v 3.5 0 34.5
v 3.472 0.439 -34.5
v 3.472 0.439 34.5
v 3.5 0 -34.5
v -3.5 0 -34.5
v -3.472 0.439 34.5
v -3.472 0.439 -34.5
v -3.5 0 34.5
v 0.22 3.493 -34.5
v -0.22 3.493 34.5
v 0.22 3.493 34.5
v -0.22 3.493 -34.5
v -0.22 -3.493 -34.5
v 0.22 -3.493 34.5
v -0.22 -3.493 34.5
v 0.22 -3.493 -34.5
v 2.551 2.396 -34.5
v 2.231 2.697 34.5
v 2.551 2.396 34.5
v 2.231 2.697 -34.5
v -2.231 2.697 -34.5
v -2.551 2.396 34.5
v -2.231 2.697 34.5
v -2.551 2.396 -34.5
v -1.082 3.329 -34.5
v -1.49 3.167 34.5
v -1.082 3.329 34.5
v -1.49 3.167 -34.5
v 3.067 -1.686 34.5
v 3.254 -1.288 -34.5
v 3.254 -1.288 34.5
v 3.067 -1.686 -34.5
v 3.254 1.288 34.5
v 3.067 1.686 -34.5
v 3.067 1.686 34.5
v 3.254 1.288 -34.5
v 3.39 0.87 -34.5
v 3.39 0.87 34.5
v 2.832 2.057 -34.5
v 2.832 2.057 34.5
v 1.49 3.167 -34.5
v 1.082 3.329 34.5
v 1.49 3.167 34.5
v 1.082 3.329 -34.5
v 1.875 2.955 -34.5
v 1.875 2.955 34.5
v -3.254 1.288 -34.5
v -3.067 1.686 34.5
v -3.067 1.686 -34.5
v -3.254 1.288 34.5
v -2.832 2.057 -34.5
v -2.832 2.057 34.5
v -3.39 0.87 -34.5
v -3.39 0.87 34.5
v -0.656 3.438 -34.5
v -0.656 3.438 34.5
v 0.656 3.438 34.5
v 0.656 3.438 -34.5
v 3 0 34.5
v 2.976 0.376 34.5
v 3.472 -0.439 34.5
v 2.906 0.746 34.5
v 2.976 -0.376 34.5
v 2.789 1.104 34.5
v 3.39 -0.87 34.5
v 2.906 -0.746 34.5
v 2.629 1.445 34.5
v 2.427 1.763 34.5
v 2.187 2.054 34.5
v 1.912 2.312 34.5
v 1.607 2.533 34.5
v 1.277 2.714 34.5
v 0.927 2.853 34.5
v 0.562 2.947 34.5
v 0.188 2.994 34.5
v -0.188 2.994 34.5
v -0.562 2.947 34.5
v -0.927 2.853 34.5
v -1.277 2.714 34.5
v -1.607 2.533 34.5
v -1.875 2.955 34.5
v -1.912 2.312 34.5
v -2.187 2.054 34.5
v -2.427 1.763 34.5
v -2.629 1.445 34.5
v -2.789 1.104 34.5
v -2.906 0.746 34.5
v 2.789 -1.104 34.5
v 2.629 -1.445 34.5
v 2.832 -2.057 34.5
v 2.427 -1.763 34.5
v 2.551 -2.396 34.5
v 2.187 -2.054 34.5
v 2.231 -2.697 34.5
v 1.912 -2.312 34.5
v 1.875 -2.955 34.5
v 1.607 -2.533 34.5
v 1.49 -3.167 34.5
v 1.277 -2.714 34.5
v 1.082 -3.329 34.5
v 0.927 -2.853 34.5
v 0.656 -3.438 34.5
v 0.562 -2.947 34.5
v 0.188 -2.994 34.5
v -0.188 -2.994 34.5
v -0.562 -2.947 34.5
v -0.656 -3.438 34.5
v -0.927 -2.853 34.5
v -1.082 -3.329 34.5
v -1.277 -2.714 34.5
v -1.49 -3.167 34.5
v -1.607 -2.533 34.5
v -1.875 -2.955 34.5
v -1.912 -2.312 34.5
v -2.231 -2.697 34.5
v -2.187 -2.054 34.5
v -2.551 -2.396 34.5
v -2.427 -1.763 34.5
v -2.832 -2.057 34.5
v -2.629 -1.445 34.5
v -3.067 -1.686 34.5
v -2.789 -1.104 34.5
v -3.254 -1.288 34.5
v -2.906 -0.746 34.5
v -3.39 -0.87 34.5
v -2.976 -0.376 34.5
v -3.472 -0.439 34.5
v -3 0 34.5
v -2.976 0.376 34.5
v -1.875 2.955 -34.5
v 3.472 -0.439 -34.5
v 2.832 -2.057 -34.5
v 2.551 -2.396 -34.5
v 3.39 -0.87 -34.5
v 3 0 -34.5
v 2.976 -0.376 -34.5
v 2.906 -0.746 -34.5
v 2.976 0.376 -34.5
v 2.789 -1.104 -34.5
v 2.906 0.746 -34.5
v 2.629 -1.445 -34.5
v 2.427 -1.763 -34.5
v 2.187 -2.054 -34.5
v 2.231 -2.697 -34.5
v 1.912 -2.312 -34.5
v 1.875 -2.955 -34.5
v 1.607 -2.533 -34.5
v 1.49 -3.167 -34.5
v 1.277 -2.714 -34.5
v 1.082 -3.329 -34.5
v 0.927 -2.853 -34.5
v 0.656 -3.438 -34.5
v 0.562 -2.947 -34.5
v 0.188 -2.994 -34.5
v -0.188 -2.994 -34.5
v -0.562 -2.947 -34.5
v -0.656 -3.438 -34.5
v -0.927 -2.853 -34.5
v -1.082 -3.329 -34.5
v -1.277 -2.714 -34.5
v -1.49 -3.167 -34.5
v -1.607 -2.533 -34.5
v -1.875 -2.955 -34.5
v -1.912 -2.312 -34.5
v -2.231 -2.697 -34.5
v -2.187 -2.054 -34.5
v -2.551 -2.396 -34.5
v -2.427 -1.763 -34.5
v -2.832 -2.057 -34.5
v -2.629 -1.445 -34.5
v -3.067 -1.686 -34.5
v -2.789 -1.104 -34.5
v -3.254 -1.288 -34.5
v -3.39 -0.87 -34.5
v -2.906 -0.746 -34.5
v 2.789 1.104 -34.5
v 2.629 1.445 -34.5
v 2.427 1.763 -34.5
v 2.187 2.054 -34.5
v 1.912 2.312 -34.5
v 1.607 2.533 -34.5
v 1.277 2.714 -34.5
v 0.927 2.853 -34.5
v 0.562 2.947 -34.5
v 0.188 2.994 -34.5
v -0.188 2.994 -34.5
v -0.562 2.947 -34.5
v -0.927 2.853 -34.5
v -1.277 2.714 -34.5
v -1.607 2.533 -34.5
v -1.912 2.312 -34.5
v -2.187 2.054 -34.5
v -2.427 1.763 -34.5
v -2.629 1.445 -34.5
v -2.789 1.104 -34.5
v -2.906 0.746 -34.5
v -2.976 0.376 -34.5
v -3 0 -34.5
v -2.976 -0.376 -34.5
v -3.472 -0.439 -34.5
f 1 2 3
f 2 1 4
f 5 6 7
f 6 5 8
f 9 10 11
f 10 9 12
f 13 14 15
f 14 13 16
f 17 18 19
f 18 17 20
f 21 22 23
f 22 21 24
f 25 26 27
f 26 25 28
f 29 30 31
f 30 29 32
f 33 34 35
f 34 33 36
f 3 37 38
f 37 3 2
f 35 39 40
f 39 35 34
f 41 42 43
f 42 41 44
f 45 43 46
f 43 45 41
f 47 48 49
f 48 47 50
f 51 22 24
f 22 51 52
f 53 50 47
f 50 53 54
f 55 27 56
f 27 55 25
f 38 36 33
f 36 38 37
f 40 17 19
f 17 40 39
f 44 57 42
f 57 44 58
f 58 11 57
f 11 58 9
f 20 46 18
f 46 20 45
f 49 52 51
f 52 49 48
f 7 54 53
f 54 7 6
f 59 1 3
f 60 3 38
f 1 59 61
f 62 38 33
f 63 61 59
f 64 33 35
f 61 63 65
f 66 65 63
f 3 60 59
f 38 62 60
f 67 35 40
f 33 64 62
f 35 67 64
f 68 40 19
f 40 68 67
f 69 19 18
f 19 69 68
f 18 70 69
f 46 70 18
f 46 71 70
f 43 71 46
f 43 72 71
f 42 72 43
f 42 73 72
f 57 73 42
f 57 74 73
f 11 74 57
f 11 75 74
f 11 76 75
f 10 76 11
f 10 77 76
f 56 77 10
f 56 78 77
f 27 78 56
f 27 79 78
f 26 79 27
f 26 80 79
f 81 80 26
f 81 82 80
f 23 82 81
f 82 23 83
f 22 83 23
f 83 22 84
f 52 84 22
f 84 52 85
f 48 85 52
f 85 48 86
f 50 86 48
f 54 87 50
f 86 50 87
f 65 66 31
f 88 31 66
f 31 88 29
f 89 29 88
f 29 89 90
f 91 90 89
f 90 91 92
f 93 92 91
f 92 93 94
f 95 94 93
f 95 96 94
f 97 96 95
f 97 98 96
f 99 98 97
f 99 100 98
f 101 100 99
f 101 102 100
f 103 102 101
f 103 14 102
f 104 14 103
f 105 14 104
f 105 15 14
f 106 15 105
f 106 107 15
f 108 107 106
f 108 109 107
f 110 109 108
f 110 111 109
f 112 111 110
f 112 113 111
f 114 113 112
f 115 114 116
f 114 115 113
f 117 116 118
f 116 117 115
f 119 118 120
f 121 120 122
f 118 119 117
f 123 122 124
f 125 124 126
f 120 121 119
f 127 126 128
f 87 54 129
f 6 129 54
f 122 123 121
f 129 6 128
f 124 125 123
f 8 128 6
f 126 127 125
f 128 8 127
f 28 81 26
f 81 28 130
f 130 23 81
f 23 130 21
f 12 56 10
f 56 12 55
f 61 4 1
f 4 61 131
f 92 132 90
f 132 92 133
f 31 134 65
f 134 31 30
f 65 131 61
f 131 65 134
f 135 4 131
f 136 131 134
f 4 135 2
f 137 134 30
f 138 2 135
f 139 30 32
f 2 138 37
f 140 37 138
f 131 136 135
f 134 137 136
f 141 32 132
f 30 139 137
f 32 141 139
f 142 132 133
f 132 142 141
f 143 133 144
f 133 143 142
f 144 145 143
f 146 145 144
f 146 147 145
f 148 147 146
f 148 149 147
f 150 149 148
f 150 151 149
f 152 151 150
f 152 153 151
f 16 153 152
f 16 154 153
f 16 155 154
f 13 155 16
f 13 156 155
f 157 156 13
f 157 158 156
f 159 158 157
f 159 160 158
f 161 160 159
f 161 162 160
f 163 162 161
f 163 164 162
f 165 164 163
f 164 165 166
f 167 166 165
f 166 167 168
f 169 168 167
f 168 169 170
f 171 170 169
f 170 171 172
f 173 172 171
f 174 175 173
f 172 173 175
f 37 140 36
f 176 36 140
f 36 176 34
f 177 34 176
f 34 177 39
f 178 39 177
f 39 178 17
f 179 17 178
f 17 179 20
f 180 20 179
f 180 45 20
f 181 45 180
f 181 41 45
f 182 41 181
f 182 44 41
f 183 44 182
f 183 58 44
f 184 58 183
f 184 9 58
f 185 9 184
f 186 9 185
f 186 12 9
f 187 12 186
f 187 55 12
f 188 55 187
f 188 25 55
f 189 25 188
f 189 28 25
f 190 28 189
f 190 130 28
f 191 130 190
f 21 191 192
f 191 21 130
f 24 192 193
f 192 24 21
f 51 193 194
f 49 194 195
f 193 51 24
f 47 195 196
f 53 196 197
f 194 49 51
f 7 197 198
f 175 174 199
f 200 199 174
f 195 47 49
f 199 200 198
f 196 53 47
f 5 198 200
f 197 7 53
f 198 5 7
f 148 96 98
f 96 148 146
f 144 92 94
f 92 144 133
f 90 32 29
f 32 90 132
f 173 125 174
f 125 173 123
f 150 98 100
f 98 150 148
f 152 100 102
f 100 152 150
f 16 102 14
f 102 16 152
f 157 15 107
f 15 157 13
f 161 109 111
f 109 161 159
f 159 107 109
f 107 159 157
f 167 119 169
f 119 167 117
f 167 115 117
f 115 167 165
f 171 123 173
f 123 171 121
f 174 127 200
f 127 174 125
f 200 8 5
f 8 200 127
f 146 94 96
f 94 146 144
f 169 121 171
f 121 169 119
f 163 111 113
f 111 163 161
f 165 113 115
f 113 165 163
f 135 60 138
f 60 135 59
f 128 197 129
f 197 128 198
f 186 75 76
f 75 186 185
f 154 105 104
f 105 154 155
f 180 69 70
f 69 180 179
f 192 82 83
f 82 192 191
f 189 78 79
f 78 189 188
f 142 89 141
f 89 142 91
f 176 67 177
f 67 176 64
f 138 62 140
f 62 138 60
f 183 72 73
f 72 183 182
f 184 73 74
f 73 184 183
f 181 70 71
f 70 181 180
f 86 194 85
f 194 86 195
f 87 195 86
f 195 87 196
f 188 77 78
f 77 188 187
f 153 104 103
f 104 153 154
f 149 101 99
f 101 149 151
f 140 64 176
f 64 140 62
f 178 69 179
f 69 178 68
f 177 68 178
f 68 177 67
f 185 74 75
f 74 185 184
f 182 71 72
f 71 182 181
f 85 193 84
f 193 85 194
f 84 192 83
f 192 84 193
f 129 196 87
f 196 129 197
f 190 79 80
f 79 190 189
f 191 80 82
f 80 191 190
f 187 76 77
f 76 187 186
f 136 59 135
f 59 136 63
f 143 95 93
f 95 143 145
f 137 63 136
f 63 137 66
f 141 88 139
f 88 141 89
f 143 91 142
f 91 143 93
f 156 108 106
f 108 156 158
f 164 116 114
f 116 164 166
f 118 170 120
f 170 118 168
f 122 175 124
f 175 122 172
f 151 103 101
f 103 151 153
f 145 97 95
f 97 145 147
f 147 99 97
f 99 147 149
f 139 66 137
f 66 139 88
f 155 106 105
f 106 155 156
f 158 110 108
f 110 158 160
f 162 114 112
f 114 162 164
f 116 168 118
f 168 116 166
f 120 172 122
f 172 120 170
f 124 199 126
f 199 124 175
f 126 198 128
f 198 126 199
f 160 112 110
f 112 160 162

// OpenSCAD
$fn = 50;


difference() {
	union() {
		translate(v = [0, 0, -34.5000000000]) {
			cylinder(h = 69, r = 3.5000000000);
		}
	}
	union() {
		translate(v = [0, 0, -100.0000000000]) {
			cylinder(h = 200, r = 3.0000000000);
		}
	}
}
